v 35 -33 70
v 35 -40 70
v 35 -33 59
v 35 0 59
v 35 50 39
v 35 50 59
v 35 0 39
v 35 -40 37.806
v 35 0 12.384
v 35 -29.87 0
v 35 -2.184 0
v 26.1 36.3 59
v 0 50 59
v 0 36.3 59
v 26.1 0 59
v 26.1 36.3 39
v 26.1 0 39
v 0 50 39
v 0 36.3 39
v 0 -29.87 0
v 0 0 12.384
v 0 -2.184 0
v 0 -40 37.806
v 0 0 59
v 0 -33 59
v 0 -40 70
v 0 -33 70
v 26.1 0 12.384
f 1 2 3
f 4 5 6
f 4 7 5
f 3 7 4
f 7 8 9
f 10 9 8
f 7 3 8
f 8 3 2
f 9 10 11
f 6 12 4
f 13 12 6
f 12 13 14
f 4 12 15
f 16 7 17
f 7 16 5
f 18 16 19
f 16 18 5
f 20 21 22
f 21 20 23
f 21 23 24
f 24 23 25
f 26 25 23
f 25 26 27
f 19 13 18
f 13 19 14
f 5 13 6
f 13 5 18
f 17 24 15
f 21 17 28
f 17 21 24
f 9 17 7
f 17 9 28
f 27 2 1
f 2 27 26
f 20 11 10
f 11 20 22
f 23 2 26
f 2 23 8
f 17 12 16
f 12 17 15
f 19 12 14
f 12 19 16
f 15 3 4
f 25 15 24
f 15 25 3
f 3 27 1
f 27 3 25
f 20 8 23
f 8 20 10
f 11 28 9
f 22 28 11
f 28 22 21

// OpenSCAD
//
// ktRack25
//
//


gap1 = 0.001;
gap2 = 0.002;

th = 2;




A();


module A()
{
difference()
{
    union()
    {
        translate([0, 0, 59-20]) cube([35, 50, 20]);
        translate([0, -40, 0]) cube([35, 40, 70]);
    }
    translate([-10, -40-80, -50]) rotate([15, 0, 0]) cube([100, 100, 100]);
    translate([-10, -11, -50]) rotate([-10, 0, 0]) cube([100, 50, 70]);
    
    SAKU();
}
}






module SAKU()
{
    color("#FFFFFF")
    {
        cube([25.1+1, 35.3+1, 200]);
        translate([-50, -(32+1), 59]) cube([200, 32+1, 45.4+1]);
        translate([-50, -(30), -100]) cube([200, 100, 100]);
    }
}



module screw_hole()
{
    cylinder( 10, 1.6, 1.6, $fn=30 );
    translate( [0, 0, 1.5] ) cylinder( 10, 6.5/2+0.1, 6.5/2+0.1, $fn=6 );
}
module screw_hole2()
{
    translate([0, 0, -5]) cylinder( 20, 1.6, 1.6, $fn=30 );
    translate( [0, 0, 1.5] ) cylinder( 3, 6.5/2+0.1, 6.5/2+0.1, $fn=6 );
}


module rear_screw_hole()
{
    translate([0, 0, 3]) cylinder(5, 1.5, 1.5, $fn=30);
    translate([0, 0, 2.2-gap1]) cylinder(0.8+gap2, 1.5+0.7, 1.5, $fn=30);
    translate([0, 0, -gap1]) cylinder(2.2+gap1, 3.25+0.4, 3.25-0.6, $fn=30);
    translate([0, 0, -10]) cylinder(10, 3.25+0.4, 3.25+0.4, $fn=30);
}
